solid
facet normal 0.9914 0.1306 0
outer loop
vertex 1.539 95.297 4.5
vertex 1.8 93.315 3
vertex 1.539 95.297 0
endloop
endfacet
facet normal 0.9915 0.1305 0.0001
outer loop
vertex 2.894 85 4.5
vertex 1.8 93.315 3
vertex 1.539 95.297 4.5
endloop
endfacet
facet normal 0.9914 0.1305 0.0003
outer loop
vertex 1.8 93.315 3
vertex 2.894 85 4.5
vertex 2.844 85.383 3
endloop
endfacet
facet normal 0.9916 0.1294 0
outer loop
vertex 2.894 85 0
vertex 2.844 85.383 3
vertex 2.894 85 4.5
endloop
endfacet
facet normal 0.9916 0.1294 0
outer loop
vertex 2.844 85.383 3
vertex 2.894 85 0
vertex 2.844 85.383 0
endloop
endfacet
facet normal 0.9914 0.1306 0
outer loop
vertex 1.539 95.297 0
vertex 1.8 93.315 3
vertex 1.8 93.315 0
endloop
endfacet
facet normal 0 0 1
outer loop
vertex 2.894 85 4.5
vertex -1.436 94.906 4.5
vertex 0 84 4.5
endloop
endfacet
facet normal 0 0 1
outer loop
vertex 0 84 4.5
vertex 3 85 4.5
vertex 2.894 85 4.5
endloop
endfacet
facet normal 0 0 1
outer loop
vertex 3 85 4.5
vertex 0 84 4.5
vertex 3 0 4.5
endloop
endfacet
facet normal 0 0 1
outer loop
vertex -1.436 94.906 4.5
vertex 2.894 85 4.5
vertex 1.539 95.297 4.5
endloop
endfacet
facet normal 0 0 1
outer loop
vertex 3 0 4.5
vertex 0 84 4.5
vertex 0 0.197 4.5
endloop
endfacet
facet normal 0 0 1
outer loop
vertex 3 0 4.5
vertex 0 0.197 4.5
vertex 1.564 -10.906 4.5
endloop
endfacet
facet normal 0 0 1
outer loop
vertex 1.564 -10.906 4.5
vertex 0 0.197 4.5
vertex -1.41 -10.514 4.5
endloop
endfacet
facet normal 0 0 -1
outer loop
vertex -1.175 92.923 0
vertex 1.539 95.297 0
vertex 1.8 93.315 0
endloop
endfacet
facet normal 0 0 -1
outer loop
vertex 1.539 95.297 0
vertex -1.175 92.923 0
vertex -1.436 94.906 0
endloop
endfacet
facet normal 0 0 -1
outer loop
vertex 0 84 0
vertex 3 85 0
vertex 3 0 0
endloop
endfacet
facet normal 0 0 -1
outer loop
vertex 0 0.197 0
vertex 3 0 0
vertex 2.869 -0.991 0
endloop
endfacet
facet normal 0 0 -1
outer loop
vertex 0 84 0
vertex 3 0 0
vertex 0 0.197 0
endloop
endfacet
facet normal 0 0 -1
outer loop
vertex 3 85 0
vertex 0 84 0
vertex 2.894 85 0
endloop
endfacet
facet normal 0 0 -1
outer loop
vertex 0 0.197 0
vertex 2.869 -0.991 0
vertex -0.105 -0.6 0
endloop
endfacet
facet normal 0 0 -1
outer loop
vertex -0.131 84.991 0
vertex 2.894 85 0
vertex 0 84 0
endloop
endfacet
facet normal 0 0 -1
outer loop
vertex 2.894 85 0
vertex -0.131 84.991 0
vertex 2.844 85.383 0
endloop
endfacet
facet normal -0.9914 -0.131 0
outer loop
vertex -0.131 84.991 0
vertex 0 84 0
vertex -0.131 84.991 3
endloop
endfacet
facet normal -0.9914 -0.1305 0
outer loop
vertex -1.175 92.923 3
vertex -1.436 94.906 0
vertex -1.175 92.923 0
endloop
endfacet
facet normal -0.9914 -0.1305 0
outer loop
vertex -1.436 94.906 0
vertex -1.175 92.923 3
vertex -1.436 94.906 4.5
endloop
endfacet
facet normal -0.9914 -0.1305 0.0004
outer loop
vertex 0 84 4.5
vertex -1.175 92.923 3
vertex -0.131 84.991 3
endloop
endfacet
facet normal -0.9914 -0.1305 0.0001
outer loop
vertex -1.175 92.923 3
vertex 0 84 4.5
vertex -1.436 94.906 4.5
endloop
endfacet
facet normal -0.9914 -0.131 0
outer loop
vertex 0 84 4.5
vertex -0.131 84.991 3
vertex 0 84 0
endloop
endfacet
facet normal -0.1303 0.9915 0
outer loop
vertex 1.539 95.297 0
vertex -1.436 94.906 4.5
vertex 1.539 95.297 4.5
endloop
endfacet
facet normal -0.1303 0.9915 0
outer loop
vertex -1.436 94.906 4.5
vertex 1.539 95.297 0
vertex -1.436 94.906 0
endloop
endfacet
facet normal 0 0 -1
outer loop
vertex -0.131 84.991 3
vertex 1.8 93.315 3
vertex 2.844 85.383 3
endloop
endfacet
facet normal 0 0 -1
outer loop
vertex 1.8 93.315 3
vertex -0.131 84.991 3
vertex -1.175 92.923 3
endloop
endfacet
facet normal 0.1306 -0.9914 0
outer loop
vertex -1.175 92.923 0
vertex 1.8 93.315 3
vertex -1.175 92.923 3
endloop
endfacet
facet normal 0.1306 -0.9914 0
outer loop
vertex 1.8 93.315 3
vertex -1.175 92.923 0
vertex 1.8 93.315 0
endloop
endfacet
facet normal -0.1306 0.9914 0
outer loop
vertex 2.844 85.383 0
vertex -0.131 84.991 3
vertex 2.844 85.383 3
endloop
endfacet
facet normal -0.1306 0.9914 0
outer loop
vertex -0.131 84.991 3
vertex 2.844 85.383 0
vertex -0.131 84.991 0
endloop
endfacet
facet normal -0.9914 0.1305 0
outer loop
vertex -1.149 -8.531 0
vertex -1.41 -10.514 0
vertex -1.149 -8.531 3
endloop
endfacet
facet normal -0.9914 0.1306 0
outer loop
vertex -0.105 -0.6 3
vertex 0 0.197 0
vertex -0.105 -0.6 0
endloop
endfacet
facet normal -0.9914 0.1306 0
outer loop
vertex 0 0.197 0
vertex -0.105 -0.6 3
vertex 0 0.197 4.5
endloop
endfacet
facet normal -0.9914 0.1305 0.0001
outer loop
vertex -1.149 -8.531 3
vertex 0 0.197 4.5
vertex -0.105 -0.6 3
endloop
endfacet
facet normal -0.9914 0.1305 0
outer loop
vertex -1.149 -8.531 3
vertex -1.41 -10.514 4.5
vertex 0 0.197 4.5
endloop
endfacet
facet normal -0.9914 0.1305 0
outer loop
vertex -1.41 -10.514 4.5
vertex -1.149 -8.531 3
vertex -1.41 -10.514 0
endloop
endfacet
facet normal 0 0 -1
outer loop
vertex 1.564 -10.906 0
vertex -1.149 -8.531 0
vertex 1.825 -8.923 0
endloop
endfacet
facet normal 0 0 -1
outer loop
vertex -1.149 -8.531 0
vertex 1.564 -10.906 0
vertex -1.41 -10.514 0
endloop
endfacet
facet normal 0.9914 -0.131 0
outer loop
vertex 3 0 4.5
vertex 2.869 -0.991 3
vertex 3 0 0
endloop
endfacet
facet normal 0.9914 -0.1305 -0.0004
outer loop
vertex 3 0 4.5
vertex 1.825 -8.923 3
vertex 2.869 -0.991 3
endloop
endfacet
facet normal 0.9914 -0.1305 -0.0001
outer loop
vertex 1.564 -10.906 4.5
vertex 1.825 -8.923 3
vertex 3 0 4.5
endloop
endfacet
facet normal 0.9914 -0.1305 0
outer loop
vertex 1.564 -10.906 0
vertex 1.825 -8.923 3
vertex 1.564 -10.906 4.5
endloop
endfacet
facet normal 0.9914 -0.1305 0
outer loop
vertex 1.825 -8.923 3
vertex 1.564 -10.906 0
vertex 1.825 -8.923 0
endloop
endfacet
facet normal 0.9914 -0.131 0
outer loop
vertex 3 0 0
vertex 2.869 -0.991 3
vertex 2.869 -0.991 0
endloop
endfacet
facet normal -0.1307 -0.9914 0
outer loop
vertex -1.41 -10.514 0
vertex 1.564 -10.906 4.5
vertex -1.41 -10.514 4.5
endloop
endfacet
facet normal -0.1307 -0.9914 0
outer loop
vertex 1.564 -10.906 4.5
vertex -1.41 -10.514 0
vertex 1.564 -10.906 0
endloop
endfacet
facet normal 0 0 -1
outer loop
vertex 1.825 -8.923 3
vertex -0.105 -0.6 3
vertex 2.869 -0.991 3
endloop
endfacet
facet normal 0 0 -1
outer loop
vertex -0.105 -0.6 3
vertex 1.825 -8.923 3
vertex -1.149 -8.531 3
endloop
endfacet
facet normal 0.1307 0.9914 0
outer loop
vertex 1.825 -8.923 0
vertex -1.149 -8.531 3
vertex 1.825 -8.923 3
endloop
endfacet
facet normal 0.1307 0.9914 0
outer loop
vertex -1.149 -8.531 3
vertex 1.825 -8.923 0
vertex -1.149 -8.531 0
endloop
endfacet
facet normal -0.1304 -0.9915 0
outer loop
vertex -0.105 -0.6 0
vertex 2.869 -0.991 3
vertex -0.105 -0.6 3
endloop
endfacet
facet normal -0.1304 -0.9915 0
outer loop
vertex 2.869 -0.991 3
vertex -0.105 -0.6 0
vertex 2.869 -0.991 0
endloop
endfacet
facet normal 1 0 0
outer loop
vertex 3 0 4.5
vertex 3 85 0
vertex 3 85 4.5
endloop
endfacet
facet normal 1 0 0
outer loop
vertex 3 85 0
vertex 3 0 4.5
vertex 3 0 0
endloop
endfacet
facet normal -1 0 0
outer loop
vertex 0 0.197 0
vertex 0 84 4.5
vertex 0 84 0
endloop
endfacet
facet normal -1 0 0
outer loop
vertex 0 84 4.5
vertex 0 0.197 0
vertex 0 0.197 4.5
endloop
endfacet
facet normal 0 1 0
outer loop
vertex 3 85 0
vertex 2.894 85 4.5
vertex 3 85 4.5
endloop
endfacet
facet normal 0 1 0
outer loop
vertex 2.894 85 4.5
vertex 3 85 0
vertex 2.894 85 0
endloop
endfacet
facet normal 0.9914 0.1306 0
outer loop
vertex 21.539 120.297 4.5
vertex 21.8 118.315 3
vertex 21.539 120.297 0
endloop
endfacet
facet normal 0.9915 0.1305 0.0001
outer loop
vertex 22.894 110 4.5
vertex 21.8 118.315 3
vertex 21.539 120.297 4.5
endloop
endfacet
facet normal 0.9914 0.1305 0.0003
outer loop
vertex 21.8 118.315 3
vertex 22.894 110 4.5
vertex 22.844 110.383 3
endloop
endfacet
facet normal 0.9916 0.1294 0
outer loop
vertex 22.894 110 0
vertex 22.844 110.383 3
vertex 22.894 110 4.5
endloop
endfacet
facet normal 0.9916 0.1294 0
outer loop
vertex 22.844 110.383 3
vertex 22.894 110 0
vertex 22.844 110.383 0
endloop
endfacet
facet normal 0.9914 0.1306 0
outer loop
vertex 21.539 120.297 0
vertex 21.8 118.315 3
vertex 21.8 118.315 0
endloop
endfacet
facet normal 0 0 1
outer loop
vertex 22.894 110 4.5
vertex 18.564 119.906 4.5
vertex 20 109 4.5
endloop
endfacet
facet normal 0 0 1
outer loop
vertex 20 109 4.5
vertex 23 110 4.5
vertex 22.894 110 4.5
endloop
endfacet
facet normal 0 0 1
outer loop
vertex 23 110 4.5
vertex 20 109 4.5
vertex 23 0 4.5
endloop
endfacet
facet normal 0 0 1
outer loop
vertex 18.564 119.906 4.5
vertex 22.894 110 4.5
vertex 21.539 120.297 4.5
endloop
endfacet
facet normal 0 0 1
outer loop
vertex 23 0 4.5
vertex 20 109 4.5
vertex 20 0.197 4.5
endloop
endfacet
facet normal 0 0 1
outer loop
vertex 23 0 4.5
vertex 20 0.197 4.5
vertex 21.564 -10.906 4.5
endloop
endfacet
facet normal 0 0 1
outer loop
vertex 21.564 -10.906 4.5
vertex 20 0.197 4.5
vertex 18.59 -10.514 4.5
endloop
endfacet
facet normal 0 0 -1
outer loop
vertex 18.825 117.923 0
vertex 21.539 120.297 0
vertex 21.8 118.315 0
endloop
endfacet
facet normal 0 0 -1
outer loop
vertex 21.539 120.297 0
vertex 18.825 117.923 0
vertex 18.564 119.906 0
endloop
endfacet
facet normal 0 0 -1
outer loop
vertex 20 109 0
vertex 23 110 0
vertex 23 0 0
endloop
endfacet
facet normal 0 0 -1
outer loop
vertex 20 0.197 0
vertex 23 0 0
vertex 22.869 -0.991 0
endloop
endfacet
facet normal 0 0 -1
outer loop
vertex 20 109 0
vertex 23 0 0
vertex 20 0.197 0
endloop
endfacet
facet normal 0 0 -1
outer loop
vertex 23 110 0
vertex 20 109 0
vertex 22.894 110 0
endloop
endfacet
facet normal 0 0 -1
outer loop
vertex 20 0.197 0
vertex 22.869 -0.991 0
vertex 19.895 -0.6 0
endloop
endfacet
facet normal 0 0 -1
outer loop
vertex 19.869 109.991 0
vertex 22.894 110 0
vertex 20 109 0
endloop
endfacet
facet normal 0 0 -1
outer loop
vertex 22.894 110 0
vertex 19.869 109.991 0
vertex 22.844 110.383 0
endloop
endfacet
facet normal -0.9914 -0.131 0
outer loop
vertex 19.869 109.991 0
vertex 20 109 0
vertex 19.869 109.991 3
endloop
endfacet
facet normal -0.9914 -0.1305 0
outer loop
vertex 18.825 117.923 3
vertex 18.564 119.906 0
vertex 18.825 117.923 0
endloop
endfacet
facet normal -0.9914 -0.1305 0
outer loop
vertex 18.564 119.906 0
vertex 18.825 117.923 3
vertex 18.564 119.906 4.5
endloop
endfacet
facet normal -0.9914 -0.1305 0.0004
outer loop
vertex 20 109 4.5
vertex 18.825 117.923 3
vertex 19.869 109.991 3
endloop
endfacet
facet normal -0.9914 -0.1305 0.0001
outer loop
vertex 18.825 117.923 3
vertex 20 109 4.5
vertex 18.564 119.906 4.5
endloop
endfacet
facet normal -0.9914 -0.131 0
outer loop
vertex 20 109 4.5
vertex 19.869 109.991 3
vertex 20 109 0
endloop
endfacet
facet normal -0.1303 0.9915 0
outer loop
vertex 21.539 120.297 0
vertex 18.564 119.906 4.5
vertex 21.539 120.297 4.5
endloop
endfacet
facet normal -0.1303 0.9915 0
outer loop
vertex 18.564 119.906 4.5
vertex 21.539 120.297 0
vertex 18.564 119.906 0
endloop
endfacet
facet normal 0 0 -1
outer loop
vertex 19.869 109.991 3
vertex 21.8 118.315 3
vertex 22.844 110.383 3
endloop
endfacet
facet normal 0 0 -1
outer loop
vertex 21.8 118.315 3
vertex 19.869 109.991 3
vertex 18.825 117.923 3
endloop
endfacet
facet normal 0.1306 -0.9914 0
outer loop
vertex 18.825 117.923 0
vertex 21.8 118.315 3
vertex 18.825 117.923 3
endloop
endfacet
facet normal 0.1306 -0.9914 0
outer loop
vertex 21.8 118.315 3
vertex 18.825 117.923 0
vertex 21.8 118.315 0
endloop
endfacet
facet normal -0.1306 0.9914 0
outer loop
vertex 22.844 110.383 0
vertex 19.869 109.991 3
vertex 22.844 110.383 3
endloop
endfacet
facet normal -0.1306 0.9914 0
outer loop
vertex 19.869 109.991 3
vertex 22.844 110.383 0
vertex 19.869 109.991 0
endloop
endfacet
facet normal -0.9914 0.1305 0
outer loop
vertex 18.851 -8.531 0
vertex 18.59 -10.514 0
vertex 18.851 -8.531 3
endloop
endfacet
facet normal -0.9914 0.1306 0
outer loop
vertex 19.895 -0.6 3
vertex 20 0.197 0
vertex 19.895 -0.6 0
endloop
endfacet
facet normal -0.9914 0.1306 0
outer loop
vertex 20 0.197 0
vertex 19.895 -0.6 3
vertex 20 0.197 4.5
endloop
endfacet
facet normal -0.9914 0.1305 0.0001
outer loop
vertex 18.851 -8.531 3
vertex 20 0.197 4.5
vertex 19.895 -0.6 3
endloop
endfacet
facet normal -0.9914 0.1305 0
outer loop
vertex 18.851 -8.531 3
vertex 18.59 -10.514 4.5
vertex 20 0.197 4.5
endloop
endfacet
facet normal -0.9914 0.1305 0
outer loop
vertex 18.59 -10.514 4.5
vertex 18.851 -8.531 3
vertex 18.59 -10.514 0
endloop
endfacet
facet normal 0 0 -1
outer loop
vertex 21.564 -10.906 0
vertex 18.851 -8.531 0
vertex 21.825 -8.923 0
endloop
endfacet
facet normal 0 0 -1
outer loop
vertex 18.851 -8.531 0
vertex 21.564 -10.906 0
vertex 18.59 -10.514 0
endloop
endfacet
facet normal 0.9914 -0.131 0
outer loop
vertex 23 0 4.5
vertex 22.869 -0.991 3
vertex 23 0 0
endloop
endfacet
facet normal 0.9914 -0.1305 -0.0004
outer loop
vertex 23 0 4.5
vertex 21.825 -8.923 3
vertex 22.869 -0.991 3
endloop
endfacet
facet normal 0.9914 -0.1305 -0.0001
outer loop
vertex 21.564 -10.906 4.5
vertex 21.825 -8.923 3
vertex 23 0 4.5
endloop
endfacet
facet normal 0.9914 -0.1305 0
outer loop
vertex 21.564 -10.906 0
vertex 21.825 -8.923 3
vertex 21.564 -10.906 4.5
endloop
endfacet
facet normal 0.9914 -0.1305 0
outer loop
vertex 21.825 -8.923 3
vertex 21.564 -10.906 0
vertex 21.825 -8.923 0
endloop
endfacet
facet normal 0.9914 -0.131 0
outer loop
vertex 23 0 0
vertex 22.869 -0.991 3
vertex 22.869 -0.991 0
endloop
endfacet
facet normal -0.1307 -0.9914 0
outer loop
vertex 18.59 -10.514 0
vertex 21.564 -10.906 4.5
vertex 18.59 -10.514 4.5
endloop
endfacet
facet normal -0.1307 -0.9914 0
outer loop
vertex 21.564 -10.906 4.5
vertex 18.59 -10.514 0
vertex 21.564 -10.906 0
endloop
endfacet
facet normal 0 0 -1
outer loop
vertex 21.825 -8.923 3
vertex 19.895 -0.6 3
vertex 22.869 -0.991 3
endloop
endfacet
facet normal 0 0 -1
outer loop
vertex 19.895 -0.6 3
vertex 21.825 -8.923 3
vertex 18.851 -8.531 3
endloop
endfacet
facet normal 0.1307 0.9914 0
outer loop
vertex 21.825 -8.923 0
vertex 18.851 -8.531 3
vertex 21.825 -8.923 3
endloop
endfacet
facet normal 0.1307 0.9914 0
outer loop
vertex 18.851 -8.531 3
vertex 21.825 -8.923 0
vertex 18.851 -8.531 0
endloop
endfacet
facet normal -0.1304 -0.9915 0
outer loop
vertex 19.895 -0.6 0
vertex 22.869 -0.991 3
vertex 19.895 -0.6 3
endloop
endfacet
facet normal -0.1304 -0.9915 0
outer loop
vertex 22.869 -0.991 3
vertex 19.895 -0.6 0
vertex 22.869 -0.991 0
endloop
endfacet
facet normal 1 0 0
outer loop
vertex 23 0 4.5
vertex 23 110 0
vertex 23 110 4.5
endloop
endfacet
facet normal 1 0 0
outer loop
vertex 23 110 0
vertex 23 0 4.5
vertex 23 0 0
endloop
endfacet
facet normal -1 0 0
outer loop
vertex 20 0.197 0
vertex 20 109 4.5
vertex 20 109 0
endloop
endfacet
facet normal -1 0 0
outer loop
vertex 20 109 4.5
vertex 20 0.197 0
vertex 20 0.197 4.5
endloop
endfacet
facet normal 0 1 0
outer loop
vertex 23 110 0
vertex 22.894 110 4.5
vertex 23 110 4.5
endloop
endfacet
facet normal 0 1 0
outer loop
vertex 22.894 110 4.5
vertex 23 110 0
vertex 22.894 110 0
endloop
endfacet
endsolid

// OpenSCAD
$fn=50;


bridge_connector_gap_height=3;
bridge_connector_gap_length=8;
bridge_connector_length=1+bridge_connector_gap_length+2;
bridge_height=4.5;
bridge_width=3;

module bridge_connector() {
    difference() {
        cube([bridge_width, bridge_connector_length, bridge_height]);
        translate([0, 1, 0]) cube([bridge_width, bridge_connector_gap_length, bridge_connector_gap_height]);
    }
}

module bridge(bridge_length) {
    cube([bridge_width, bridge_length, bridge_height]);
translate([0, bridge_length-1, 0]) rotate([0, 0, 7.5]) bridge_connector();
translate([bridge_width, 0, 0]) rotate([0, 0, 180-7.5]) bridge_connector();

}

bridge(85);

translate([20, 0, 0]) bridge(110);
